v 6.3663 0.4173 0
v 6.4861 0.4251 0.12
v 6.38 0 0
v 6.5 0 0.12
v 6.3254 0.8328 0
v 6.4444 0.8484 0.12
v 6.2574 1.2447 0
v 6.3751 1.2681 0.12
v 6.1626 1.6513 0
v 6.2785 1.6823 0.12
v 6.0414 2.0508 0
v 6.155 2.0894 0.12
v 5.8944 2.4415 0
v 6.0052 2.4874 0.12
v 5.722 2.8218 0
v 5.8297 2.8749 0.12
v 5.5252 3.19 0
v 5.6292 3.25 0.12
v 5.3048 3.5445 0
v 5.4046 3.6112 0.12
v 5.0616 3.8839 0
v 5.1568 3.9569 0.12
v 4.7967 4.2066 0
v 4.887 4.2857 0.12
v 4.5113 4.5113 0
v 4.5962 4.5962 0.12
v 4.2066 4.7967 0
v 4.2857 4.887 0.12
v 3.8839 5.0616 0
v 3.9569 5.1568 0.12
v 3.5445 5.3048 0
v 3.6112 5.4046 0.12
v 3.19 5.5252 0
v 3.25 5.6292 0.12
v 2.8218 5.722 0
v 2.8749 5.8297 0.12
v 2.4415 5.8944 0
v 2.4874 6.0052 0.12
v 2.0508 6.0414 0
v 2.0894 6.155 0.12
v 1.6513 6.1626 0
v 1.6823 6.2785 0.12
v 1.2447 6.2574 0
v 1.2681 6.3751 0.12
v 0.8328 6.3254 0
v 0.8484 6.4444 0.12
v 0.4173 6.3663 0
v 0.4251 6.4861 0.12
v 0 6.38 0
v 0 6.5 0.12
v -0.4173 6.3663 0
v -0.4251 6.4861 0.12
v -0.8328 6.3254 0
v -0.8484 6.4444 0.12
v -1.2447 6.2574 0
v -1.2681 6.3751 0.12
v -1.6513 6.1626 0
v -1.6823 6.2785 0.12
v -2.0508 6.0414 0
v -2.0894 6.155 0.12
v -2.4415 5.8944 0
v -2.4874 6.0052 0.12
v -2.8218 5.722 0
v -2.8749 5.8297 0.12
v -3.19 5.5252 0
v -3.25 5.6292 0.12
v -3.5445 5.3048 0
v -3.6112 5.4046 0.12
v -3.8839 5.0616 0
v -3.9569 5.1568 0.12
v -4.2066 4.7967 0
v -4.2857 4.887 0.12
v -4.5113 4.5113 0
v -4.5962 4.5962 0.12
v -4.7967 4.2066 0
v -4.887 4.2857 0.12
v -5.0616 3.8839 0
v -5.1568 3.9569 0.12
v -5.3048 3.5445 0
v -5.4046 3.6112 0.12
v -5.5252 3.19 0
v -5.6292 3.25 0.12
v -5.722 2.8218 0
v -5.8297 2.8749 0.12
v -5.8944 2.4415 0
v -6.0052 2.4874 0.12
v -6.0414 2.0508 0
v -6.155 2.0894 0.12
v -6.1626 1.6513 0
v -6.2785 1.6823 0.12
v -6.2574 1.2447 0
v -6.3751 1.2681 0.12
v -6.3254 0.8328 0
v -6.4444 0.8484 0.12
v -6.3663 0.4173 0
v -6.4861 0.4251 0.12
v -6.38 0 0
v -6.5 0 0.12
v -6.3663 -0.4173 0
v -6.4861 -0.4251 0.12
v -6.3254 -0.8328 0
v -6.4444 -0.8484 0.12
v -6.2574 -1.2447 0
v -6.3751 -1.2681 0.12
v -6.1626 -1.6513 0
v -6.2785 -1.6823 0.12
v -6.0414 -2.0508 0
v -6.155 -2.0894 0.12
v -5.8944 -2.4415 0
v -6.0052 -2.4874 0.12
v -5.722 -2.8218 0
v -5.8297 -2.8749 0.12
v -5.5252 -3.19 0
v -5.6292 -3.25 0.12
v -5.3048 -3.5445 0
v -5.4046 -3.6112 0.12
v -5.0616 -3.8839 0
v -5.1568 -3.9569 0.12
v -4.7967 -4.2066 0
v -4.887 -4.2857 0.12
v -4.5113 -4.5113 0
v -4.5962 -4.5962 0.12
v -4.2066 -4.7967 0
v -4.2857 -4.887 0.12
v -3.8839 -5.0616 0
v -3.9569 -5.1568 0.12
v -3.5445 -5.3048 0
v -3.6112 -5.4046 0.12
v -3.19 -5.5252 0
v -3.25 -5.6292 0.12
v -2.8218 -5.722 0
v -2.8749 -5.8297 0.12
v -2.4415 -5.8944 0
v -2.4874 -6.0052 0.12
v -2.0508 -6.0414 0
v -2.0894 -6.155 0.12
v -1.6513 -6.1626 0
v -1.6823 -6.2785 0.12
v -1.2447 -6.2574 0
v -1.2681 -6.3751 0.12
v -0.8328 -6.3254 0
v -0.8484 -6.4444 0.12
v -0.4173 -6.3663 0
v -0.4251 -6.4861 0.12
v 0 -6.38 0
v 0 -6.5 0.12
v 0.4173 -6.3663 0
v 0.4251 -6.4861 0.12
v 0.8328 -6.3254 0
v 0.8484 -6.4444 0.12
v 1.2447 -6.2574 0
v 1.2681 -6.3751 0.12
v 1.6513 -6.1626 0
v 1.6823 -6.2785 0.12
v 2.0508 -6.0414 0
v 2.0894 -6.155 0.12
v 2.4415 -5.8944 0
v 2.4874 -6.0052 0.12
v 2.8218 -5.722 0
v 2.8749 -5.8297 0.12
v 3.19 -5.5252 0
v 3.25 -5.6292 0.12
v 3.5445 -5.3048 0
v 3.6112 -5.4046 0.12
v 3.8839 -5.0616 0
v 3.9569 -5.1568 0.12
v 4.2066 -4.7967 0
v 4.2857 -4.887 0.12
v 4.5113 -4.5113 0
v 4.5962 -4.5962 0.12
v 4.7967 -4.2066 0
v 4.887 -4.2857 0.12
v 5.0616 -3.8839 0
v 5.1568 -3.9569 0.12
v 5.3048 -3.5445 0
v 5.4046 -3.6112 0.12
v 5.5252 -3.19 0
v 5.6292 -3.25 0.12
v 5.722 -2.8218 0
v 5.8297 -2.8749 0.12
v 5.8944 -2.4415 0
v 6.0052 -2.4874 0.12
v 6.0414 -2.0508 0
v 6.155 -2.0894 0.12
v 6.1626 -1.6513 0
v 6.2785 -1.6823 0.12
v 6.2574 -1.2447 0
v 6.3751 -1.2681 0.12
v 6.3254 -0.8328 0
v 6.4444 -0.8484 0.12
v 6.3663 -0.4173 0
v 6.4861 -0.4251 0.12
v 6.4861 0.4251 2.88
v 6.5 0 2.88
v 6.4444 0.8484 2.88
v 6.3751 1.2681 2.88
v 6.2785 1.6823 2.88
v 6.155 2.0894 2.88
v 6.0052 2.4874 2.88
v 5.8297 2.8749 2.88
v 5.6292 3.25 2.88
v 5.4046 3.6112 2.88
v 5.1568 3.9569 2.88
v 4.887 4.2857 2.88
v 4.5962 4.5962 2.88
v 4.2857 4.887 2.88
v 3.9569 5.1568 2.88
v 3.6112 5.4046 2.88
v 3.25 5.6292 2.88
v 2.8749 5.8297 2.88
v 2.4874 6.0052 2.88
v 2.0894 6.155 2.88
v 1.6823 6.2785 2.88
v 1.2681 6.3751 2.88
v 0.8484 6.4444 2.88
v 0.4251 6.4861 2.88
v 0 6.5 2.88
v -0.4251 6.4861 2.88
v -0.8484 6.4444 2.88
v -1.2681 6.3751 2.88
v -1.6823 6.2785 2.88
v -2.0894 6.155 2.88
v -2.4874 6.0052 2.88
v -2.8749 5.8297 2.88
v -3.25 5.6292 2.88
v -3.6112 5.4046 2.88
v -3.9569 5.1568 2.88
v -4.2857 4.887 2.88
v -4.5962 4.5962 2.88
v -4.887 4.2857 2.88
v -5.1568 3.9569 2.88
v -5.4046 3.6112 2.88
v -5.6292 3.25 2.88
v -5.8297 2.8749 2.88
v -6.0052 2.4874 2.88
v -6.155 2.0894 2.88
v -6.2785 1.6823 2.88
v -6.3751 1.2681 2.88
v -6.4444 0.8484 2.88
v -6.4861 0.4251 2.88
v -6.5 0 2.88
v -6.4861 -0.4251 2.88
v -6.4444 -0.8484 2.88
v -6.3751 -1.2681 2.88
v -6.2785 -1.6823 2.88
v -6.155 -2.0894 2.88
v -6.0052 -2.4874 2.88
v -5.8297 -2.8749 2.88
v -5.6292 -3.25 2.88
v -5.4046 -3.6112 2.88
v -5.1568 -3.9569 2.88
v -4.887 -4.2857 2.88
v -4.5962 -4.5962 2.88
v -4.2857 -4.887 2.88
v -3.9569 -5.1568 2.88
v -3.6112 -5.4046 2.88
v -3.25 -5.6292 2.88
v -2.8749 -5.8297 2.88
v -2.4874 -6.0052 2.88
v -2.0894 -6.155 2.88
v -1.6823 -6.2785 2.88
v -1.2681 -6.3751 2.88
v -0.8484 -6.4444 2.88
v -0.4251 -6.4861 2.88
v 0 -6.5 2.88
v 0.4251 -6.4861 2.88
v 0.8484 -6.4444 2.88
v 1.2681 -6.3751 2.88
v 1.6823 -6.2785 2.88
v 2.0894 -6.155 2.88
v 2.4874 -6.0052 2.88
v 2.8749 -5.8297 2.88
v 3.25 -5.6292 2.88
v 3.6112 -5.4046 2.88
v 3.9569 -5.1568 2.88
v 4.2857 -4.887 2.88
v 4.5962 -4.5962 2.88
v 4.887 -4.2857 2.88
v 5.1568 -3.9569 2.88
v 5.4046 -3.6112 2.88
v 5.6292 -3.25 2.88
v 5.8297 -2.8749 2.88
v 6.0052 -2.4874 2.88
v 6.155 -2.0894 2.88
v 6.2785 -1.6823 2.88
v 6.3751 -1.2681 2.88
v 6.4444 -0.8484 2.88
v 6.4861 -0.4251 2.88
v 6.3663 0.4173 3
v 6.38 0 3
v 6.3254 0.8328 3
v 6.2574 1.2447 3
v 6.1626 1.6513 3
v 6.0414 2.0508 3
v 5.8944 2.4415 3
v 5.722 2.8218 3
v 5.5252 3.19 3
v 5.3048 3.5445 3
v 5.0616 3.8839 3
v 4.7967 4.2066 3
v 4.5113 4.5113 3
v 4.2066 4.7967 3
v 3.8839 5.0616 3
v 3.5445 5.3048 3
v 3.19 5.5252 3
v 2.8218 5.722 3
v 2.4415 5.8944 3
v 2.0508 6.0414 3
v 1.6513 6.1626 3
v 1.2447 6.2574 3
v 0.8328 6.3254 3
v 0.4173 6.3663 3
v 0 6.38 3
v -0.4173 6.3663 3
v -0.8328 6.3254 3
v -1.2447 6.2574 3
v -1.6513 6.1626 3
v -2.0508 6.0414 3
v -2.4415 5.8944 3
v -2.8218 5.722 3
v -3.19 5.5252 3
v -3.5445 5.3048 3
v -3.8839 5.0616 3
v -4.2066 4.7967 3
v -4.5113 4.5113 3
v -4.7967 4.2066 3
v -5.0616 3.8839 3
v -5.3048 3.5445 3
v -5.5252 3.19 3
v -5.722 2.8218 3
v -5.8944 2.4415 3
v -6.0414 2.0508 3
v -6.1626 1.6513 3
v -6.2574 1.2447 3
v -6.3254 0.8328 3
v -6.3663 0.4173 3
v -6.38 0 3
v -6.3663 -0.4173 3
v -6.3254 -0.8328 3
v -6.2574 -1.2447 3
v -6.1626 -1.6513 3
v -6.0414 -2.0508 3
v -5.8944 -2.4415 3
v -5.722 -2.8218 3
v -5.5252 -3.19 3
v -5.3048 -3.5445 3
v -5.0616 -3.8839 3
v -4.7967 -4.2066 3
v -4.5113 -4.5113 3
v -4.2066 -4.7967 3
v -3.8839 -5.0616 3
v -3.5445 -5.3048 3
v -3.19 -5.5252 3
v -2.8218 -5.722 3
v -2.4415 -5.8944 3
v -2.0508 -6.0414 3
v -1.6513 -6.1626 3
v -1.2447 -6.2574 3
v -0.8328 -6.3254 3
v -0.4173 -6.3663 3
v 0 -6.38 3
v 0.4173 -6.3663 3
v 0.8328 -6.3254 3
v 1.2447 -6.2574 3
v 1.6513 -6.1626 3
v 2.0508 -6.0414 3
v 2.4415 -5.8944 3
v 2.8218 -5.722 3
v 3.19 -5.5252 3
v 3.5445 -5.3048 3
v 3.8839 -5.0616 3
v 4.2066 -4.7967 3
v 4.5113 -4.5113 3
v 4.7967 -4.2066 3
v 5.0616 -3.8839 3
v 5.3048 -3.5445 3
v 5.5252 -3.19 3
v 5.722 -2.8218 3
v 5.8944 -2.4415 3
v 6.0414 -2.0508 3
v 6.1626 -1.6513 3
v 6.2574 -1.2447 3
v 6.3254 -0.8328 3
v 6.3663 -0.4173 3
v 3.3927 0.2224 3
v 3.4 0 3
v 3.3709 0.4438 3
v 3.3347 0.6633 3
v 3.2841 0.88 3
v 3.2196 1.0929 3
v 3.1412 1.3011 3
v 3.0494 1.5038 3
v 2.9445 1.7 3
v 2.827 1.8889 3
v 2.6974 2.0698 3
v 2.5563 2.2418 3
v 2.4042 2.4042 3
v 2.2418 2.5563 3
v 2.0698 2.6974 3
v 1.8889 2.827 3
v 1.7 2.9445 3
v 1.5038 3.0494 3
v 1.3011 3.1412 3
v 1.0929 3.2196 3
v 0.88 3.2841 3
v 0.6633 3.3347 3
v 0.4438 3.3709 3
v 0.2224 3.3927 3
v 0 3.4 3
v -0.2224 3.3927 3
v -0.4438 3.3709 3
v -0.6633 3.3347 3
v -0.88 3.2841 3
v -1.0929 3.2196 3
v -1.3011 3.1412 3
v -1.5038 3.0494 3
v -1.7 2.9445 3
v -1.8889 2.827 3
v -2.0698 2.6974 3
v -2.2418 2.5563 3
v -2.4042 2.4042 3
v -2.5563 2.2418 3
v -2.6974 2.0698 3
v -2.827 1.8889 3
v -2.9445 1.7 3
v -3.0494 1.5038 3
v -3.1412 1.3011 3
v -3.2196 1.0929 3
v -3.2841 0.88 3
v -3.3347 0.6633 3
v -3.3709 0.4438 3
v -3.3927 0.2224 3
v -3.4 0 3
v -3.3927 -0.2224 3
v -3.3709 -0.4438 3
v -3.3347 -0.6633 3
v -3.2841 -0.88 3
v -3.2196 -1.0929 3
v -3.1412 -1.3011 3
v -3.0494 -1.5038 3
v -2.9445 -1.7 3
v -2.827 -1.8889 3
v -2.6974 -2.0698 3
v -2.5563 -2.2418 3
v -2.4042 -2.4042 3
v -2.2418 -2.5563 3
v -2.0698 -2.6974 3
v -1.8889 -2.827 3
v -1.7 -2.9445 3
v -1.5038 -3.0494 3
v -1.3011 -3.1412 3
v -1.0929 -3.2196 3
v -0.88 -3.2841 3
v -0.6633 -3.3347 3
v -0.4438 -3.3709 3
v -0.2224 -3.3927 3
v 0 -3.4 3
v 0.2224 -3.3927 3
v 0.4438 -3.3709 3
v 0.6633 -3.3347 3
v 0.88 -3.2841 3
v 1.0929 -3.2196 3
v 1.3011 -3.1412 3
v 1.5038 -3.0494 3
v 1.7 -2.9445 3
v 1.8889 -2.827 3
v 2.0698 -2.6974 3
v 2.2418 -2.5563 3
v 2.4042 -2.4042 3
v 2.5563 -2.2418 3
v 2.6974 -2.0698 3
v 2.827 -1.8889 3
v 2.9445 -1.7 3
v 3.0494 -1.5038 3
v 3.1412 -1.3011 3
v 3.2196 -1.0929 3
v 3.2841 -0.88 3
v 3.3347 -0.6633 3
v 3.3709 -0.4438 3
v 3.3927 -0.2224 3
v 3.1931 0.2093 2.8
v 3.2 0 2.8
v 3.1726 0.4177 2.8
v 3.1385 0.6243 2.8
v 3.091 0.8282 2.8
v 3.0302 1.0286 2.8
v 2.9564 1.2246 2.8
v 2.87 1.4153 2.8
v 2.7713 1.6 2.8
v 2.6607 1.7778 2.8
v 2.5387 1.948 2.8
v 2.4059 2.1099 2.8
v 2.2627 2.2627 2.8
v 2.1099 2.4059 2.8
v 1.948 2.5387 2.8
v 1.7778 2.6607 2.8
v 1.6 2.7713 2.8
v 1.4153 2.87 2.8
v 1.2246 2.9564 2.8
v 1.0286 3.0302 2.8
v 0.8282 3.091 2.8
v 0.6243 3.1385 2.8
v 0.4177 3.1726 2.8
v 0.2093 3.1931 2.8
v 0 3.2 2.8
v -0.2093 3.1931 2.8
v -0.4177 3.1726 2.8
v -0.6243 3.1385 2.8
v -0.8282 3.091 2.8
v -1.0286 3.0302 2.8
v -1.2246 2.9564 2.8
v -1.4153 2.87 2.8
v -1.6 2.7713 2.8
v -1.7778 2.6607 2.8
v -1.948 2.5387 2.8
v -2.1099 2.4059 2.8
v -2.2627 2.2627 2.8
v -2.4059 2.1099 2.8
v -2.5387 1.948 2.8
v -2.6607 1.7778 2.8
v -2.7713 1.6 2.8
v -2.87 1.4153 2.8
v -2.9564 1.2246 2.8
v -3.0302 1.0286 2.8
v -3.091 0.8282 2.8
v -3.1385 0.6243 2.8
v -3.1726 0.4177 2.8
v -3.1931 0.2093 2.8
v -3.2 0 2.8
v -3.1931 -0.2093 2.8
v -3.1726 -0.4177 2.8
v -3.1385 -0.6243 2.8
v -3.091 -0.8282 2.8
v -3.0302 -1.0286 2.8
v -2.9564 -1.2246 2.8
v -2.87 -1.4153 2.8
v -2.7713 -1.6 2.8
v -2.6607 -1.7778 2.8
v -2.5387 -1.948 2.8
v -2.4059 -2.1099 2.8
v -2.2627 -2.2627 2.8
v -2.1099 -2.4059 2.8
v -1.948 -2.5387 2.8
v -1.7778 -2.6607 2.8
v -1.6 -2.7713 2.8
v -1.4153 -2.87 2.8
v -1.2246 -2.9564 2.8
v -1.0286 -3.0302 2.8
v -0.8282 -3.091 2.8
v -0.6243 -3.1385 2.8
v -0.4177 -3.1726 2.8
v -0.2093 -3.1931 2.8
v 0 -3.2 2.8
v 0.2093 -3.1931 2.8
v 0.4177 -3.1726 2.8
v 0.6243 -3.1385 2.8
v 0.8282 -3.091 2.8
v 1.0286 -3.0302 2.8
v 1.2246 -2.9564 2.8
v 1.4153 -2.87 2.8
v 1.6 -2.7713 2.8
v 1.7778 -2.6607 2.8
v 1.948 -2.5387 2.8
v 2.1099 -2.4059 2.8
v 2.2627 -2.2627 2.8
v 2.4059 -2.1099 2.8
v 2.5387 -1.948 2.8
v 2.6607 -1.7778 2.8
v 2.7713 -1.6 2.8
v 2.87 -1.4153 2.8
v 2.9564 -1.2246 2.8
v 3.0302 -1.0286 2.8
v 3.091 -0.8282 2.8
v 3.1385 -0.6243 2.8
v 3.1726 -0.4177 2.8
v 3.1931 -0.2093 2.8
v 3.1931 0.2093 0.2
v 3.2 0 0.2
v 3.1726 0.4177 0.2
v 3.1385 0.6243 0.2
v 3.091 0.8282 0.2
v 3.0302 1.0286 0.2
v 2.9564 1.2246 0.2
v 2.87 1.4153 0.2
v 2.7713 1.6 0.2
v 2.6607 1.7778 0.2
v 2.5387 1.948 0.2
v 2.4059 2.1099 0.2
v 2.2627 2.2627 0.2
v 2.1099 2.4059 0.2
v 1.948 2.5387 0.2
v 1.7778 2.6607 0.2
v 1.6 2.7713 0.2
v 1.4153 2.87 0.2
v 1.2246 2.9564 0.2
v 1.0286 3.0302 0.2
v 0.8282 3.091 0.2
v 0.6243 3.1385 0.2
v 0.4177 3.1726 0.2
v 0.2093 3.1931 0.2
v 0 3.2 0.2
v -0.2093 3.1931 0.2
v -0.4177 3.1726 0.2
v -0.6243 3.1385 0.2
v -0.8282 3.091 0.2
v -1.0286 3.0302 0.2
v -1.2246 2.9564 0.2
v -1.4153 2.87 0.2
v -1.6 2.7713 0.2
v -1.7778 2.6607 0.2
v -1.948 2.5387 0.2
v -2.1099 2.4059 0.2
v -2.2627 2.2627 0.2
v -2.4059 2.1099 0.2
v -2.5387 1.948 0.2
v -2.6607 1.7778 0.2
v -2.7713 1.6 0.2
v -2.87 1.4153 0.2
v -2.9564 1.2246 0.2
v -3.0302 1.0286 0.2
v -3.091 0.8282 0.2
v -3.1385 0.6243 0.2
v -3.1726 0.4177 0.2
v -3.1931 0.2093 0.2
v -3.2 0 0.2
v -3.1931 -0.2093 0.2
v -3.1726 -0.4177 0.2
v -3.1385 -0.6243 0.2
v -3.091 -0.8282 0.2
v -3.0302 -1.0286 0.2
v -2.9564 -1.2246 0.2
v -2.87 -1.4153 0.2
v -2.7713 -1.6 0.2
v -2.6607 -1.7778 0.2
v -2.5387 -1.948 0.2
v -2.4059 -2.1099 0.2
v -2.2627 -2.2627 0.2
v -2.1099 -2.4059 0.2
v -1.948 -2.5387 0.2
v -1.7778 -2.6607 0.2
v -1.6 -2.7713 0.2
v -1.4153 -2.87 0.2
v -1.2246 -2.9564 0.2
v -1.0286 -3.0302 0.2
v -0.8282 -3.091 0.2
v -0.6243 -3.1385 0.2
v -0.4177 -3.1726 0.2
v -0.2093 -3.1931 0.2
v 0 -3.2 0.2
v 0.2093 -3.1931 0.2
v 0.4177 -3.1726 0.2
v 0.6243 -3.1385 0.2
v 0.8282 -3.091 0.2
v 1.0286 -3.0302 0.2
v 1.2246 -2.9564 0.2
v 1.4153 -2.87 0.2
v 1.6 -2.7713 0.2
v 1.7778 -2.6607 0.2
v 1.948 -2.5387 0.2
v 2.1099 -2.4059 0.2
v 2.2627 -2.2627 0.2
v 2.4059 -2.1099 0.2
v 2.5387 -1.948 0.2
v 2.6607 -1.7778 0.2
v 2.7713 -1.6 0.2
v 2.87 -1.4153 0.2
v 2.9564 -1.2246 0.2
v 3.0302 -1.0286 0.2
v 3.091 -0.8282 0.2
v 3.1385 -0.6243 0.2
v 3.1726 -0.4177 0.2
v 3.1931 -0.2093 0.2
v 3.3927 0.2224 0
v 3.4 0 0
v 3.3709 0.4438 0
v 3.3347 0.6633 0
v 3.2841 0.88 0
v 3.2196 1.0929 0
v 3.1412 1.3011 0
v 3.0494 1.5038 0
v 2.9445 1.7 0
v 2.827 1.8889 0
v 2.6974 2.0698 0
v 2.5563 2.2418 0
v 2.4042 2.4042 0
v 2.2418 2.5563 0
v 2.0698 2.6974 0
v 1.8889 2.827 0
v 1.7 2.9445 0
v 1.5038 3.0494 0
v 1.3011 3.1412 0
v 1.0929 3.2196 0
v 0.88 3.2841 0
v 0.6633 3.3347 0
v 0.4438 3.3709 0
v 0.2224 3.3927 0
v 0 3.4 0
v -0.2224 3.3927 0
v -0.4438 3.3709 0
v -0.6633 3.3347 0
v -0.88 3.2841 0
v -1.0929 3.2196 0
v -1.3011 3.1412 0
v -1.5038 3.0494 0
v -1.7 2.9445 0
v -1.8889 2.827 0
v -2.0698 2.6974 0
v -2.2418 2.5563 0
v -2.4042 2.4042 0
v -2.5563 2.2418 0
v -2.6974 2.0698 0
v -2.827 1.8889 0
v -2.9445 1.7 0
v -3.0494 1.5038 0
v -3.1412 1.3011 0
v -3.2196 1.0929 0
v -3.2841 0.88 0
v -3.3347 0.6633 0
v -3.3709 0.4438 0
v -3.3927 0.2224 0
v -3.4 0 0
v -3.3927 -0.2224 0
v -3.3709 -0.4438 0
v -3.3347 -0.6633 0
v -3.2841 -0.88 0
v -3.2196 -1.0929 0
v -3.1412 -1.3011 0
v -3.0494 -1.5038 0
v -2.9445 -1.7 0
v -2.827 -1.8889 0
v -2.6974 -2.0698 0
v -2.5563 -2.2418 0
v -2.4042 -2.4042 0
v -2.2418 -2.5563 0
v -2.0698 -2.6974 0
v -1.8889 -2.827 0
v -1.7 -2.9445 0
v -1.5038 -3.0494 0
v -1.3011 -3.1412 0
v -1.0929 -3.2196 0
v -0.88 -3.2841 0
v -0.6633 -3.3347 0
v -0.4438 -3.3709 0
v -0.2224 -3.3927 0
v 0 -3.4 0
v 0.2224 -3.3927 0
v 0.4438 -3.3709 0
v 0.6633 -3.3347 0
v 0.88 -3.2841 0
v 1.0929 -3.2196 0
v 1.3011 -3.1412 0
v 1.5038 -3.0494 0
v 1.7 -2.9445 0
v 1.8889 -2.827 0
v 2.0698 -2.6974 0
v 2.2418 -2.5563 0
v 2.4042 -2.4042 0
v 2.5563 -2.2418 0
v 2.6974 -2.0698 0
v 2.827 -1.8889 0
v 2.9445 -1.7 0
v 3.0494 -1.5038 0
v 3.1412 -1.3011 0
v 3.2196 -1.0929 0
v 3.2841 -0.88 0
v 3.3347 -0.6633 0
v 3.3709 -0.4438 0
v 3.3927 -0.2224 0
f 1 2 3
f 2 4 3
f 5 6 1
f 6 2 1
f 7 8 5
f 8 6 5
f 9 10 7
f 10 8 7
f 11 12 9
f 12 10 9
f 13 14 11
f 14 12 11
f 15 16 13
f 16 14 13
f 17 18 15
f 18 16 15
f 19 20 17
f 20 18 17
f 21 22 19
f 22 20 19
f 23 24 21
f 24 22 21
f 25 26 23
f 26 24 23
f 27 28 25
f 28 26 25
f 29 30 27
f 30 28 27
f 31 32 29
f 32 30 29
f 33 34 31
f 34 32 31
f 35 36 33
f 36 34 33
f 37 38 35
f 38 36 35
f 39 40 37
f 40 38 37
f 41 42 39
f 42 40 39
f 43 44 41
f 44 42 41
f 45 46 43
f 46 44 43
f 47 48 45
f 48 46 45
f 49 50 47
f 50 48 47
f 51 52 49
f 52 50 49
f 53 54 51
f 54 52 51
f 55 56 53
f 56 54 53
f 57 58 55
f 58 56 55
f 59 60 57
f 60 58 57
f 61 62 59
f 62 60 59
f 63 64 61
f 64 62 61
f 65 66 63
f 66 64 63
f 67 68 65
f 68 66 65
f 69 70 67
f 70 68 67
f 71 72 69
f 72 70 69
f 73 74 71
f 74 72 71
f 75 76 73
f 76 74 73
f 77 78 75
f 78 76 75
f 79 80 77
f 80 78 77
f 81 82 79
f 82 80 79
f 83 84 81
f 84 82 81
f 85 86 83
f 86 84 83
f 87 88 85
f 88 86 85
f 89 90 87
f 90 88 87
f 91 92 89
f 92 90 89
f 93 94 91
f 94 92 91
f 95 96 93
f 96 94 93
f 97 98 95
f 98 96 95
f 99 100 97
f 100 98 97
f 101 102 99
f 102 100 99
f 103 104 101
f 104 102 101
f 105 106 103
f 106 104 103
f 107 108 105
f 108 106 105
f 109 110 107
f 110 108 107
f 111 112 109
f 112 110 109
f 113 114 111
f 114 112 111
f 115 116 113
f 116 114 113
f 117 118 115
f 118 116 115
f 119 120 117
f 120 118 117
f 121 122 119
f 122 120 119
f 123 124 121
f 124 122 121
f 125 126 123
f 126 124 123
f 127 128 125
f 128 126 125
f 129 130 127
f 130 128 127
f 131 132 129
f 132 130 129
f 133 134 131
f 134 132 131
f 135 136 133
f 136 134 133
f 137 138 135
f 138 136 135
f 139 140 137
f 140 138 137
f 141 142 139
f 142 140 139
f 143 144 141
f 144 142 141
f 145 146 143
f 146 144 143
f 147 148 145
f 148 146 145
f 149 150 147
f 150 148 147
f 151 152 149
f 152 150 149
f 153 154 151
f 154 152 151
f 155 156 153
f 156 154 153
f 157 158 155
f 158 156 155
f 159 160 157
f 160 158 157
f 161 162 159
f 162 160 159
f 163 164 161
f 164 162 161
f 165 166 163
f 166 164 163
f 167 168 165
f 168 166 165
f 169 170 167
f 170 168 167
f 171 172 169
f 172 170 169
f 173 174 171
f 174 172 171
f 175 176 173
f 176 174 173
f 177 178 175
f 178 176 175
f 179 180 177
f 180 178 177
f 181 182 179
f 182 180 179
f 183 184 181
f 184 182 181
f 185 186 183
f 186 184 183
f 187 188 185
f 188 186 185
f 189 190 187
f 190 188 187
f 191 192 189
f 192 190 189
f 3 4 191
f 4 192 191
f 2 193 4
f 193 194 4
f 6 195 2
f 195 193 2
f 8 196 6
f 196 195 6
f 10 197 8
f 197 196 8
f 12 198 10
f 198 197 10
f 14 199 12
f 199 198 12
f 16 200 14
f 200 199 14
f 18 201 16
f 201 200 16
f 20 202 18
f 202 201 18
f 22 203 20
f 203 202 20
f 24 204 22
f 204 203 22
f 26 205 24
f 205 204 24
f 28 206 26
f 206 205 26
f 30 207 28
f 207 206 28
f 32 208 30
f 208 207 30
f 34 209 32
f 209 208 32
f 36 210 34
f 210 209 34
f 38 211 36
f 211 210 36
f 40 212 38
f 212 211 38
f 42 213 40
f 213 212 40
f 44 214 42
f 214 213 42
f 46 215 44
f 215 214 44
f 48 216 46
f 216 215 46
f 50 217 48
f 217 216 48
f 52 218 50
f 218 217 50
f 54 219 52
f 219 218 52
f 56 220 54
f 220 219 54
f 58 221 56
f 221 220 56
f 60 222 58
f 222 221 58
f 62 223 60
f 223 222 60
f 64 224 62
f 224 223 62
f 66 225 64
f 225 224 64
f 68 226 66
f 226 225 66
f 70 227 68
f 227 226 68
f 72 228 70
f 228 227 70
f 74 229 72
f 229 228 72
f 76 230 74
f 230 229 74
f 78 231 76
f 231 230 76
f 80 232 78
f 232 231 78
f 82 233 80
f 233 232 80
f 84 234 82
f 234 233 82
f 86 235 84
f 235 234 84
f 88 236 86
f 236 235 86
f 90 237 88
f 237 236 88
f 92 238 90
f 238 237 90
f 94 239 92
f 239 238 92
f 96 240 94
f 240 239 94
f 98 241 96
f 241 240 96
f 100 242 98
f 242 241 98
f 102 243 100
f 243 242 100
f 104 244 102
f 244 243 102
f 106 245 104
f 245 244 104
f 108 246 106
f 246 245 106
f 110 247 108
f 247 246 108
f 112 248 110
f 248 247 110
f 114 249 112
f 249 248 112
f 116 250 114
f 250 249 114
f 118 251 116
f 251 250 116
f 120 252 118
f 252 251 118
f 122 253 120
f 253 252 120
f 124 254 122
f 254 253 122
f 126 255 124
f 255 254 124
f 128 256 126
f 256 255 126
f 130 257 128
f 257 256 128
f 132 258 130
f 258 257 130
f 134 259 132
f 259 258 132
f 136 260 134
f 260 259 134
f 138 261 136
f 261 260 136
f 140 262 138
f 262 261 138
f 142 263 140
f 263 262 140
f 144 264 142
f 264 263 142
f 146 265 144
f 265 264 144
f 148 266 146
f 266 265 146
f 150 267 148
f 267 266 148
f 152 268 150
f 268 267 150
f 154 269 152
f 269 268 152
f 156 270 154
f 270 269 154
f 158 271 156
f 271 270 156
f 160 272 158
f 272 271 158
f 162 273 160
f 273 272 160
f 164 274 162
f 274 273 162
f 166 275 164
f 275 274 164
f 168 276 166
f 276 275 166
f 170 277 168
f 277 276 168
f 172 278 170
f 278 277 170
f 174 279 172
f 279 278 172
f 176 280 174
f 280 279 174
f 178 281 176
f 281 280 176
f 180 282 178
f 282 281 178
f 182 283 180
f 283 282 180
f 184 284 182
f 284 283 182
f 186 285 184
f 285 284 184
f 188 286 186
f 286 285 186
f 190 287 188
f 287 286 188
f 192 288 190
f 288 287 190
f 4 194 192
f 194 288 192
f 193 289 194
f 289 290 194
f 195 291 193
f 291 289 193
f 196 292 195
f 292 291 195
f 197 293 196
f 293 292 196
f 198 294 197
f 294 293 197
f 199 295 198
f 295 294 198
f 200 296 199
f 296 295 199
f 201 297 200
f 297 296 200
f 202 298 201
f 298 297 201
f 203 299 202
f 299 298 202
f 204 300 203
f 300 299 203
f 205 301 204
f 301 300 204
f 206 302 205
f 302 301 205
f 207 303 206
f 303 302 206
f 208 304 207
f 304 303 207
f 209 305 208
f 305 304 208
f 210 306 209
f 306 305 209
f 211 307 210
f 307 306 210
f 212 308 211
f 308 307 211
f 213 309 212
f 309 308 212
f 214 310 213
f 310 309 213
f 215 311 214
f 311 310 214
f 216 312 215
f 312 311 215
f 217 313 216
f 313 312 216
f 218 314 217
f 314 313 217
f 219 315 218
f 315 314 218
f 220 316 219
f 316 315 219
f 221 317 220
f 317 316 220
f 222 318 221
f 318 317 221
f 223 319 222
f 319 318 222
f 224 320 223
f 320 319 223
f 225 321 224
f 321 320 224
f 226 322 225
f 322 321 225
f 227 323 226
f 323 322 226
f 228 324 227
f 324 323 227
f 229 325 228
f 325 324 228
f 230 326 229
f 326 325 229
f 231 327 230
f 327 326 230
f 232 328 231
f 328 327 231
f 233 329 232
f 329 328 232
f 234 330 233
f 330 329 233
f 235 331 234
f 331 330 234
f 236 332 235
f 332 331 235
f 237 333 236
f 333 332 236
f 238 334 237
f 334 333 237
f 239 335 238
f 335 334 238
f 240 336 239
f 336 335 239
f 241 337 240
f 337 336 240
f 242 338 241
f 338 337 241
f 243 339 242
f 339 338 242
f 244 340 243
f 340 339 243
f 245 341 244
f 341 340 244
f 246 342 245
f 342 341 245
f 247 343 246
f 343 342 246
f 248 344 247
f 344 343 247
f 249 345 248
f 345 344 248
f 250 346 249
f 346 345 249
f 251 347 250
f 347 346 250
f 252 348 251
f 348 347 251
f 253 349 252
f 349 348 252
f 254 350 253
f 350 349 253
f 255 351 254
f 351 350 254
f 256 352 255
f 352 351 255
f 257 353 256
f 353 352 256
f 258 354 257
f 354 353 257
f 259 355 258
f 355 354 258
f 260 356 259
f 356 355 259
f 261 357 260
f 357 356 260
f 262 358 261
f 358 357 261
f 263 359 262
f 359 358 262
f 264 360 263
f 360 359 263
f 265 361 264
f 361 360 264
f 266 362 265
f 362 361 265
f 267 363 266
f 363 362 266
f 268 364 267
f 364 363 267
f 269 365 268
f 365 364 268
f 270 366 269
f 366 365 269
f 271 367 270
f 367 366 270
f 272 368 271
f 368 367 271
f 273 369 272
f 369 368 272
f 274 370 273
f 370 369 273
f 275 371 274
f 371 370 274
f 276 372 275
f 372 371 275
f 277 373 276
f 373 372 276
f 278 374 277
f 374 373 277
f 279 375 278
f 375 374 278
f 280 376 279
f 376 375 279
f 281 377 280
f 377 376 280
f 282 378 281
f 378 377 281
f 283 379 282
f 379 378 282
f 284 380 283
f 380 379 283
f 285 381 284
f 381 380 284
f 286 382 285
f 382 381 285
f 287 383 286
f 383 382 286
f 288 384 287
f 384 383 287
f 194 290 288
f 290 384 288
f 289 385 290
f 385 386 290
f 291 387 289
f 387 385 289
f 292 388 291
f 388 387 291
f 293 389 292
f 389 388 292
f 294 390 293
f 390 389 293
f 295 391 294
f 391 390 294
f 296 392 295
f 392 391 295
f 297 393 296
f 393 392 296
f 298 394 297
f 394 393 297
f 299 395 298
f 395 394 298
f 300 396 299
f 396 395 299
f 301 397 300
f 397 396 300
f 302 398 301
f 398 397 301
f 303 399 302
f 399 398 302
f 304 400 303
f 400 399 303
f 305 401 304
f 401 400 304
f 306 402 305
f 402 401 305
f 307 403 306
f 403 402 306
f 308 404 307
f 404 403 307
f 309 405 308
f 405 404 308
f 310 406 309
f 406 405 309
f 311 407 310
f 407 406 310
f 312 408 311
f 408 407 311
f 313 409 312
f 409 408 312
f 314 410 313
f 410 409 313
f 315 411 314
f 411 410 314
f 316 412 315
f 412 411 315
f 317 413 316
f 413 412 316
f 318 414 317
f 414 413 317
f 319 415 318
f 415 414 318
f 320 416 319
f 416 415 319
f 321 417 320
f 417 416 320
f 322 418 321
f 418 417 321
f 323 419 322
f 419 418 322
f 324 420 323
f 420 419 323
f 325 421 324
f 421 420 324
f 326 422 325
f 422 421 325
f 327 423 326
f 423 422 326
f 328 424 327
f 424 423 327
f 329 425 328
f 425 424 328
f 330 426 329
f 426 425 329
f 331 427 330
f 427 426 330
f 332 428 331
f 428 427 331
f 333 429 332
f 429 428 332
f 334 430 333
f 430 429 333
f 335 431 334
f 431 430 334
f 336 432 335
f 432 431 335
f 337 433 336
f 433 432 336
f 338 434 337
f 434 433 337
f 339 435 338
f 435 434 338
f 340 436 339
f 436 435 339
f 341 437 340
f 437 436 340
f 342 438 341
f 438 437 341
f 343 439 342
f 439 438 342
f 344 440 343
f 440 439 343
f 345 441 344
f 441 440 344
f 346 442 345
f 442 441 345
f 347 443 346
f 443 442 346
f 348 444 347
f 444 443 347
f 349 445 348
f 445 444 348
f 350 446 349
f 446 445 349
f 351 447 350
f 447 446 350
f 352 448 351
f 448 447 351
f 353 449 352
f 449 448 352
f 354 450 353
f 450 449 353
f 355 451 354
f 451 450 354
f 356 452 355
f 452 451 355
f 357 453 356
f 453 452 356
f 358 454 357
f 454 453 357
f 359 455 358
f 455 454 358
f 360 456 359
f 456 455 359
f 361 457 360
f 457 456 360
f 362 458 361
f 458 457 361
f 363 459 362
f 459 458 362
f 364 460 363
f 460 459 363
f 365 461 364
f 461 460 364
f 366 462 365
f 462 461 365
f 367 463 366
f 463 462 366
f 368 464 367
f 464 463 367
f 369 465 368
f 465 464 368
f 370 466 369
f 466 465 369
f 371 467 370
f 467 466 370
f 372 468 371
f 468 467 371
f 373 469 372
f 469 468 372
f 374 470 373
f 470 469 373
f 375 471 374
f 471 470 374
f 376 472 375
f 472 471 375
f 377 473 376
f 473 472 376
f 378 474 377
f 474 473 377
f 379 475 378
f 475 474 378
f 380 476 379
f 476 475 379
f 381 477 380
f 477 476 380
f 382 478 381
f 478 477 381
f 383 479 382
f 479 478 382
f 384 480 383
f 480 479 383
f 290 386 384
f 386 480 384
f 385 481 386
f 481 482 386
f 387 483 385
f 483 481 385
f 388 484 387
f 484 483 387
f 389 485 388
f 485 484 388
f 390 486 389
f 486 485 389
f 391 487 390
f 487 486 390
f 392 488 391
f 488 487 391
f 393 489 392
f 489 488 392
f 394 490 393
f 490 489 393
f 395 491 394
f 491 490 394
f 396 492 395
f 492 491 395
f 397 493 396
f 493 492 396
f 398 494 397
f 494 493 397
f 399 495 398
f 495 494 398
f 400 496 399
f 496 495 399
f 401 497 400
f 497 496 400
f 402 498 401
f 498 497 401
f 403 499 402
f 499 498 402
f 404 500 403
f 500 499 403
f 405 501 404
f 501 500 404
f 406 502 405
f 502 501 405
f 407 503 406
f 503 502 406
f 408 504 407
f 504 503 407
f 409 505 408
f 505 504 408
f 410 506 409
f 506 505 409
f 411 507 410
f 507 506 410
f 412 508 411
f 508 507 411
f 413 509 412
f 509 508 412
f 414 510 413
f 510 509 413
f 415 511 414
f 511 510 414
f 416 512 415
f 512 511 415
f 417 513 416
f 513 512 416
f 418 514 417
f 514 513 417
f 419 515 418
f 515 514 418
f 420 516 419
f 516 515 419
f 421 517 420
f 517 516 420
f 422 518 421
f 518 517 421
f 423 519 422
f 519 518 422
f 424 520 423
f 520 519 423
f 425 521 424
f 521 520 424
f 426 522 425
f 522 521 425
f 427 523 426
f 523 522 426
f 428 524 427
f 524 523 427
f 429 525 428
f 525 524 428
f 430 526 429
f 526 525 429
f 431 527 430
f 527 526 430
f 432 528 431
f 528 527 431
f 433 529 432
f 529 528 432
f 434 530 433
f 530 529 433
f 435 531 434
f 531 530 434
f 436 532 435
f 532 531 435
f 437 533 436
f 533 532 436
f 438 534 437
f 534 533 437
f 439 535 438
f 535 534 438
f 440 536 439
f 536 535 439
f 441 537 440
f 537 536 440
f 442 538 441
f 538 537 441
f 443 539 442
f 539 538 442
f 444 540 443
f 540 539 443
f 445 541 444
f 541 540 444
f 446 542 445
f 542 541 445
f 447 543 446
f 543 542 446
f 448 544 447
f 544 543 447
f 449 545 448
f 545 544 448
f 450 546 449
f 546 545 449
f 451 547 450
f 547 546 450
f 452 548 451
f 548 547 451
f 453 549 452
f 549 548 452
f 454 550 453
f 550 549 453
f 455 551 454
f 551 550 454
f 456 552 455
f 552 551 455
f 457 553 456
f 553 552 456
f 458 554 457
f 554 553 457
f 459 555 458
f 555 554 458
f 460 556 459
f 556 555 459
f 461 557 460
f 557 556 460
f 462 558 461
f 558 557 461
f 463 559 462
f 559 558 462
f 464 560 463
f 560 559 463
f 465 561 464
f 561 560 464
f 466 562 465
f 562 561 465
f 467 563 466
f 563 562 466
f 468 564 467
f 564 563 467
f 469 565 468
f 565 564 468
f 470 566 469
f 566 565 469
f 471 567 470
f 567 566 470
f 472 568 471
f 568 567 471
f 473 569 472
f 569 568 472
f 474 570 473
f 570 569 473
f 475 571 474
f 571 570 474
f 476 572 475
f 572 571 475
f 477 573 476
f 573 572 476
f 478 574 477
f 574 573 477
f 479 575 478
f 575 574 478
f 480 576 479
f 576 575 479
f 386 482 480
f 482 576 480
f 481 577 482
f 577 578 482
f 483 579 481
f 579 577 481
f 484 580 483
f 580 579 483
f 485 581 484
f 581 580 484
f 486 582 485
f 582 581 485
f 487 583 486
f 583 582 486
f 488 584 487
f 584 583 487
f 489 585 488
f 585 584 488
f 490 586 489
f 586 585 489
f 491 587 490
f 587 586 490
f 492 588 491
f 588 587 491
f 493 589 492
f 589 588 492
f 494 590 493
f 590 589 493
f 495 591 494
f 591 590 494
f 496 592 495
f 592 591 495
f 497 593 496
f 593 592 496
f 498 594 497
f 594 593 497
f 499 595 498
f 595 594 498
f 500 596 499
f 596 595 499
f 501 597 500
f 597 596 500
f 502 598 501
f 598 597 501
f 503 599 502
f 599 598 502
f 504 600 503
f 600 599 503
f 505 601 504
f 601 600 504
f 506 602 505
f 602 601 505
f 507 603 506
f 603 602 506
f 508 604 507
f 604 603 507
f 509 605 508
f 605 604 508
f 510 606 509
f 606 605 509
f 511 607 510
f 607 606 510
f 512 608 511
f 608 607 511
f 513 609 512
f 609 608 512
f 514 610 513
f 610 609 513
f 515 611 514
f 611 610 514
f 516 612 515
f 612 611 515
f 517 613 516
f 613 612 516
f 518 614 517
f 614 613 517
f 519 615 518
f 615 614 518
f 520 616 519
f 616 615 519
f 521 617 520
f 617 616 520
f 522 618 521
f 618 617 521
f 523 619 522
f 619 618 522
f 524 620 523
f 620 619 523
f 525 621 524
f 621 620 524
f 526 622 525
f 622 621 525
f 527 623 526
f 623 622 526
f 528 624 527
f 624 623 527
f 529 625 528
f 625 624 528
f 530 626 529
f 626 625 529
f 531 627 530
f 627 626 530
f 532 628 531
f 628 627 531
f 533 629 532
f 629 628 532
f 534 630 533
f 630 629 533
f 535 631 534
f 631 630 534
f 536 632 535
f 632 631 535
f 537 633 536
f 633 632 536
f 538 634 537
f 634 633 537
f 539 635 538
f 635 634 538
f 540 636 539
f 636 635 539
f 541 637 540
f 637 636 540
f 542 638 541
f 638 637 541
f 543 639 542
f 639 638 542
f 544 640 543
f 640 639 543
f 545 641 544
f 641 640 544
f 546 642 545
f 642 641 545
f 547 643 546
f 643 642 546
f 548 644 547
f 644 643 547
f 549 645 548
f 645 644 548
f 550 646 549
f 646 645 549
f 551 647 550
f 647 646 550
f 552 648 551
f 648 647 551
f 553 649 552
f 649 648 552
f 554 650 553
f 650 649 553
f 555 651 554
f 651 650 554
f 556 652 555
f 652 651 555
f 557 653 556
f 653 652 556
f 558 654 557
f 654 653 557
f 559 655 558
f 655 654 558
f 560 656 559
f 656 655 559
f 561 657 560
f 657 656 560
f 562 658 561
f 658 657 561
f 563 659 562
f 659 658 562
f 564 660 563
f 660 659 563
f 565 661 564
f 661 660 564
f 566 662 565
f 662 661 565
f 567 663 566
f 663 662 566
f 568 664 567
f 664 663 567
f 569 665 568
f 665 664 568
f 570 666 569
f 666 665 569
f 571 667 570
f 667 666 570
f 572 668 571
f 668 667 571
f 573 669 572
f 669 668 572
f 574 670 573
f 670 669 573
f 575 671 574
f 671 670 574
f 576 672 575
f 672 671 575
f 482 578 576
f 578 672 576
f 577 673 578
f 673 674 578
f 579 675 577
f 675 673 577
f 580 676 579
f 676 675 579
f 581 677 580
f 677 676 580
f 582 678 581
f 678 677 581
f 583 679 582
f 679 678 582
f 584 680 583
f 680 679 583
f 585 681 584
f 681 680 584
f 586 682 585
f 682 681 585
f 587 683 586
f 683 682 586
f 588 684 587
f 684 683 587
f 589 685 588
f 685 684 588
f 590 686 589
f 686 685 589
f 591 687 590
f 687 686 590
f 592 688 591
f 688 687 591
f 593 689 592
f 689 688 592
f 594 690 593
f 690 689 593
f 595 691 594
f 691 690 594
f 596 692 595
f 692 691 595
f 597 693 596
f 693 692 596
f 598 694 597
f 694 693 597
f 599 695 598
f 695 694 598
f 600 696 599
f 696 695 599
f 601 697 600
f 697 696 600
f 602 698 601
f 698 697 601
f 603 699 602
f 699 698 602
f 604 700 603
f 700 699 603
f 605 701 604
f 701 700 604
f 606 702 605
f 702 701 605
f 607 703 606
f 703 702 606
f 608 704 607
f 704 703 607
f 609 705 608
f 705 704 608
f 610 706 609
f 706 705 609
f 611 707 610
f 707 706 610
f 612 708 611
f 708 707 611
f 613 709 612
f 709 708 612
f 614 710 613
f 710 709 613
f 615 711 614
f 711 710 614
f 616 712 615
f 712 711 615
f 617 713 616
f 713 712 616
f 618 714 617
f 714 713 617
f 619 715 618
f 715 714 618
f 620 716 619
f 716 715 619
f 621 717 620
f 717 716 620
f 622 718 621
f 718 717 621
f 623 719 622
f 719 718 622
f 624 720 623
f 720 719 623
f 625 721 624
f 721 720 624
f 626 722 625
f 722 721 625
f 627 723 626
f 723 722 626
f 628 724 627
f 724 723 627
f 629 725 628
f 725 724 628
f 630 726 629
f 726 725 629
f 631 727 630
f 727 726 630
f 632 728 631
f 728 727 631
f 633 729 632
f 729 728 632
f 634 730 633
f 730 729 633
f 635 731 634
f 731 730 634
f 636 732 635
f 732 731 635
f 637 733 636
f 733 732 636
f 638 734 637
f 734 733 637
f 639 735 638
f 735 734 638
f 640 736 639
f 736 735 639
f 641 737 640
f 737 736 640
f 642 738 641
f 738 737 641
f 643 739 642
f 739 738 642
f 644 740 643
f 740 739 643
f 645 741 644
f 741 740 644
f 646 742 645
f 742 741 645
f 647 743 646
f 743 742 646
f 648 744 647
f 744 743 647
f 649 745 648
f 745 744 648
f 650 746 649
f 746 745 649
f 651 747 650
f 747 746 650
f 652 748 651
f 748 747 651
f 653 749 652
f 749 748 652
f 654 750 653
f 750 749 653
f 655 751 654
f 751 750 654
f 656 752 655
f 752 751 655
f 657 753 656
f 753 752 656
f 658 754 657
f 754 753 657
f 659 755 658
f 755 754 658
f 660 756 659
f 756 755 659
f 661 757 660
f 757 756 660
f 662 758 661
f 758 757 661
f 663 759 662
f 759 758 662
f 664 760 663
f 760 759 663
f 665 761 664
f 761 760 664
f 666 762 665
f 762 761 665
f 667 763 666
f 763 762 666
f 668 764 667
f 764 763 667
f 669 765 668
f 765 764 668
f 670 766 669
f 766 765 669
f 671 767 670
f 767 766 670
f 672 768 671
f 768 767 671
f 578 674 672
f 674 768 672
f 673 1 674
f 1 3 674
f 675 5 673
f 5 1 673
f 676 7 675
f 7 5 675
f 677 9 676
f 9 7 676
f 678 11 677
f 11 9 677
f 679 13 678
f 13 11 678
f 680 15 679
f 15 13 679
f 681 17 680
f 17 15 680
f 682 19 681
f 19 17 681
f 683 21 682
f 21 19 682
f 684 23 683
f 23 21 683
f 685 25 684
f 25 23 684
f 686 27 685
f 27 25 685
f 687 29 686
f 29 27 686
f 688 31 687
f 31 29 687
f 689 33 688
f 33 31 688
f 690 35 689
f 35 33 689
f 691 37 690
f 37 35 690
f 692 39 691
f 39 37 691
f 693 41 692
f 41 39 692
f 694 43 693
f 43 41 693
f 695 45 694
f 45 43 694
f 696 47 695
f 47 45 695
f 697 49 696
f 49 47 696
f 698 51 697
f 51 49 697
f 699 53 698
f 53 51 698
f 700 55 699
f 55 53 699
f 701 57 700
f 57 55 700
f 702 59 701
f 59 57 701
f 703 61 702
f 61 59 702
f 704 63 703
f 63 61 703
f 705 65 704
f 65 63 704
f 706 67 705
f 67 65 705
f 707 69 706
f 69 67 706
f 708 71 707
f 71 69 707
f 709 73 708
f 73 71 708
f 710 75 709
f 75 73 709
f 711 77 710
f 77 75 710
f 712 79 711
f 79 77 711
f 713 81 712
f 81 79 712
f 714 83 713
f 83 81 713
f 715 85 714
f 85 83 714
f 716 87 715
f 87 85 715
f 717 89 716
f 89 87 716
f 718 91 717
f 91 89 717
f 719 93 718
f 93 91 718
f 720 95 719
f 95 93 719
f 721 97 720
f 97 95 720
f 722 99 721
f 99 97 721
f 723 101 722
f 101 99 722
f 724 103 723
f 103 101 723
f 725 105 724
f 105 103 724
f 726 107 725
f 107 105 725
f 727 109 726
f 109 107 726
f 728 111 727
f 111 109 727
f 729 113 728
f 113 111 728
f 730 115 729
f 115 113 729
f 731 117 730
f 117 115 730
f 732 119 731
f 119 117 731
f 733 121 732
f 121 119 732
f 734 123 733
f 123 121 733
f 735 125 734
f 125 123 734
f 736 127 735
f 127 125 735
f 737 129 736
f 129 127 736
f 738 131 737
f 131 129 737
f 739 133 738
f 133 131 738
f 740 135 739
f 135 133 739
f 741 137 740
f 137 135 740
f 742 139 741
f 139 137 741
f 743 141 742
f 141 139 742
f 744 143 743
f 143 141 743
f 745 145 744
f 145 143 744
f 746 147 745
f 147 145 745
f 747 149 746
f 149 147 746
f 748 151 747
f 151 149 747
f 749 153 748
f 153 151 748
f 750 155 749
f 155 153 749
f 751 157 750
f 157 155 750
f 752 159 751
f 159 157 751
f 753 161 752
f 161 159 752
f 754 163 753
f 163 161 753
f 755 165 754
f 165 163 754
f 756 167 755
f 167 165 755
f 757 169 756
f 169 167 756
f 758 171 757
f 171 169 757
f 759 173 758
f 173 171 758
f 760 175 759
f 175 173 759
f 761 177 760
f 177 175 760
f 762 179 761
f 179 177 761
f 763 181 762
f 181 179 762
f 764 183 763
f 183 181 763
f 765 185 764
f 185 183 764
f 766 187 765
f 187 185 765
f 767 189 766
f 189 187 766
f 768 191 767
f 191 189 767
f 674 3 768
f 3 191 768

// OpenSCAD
// OOMP generic catalogue model; units: mm.
// Stud length is additional to body depth. Tapping depths are model assumptions.
variant = "full"; // [full, display]
family = "spacer";
connection_type = "plain";
depth_mm = 3;
stud_length_mm = 0;
tapped_depth_mm = 0;
bore_mm = 6.4;
outer_diameter_mm = 13;
across_flats_mm = 6;
thread_nominal_diameter_mm = 3;
thread_pitch_mm = 0.5;
edge_chamfer_mm = 0.12;
mouth_chamfer_mm = 0.2;
angular_segments = 96;
samples_per_pitch = 16;

// Boundary travels up the outside, then down any tapped/plain bore.
// Equal-height rings at shoulders form the annular shoulder faces.
n = angular_segments;
threaded = family == "standoff";
has_stud = connection_type == "stud_to_tapped" || connection_type == "stud_to_stud";
two_studs = connection_type == "stud_to_stud";
through = !threaded || connection_type == "tapped_to_tapped";
pitch = thread_pitch_mm;
diameter = threaded ? thread_nominal_diameter_mm : bore_mm;
minor = diameter - 5*sqrt(3)*pitch/8;
transition = mouth_chamfer_mm + (threaded ? 5*sqrt(3)*pitch/16 : 0);
tip_chamfer = mouth_chamfer_mm + 17*sqrt(3)*pitch/48;
function sorted(v) = len(v)<=1 ? v : let(p=v[0])
    concat(sorted([for(x=v) if(x<p-1e-8) x]), [p], sorted([for(x=v) if(x>p+1e-8) x]));
function reverse(v) = [for(i=[len(v)-1:-1:0]) v[i]];
function theta(i) = i*360/n;
function fract(x) = x-floor(x);
function phase_distance(i,z) = abs(fract(z/pitch-theta(i)/360+0.5)-0.5);
function thread_r(i,z) = minor/2 + min(5*sqrt(3)*pitch/16,
    max(0,(phase_distance(i,z)-0.125)*pitch*sqrt(3)));
function stud_r(i,z,tip) = min(diameter/2 - (variant=="full" ?
    min(17*sqrt(3)*pitch/48,max(0,(phase_distance(i,z)-0.0625)*pitch*sqrt(3))) : 0),
    diameter/2-tip_chamfer+abs(z-tip));
function body_r(i,z) = (threaded ? across_flats_mm/2/cos(theta(i)%60-30) : outer_diameter_mm/2)
    - max(0,edge_chamfer_mm-min(z,depth_mm-z));
function bore_r(i,z) = max(threaded ? (variant=="full" ? thread_r(i,z) : minor/2) : diameter/2,
    diameter/2+mouth_chamfer_mm-(through ? min(z,depth_mm-z) : depth_mm-z));
function stud_z(a,b,tip) = let(count=variant=="full" ? ceil(stud_length_mm/pitch*samples_per_pitch) : 1)
    sorted(concat([for(i=[0:count]) a+(b-a)*i/count], [tip==a ? tip+tip_chamfer : tip-tip_chamfer]));
body_z = sorted([0,edge_chamfer_mm,depth_mm-edge_chamfer_mm,depth_mm]);
low = through ? 0 : depth_mm-tapped_depth_mm;
count = threaded && variant=="full" ? ceil((depth_mm-low)/pitch*samples_per_pitch) : 1;
bore_z = two_studs ? [] : reverse(sorted(concat(
    [for(i=[0:count]) low+(depth_mm-low)*i/count],
    [depth_mm-mouth_chamfer_mm,depth_mm-transition],
    through ? [mouth_chamfer_mm,transition] : [])));
// Ring descriptors: [height, kind, tip]. Kind: 0 body, 1 stud, 2 bore.
rings = concat(
    has_stud ? [for(z=stud_z(-stud_length_mm,0,-stud_length_mm)) [z,1,-stud_length_mm]] : [],
    [for(z=body_z) [z,0,0]],
    two_studs ? [for(z=stud_z(depth_mm,depth_mm+stud_length_mm,depth_mm+stud_length_mm)) [z,1,depth_mm+stud_length_mm]] : [],
    [for(z=bore_z) [z,2,0]]);
function radius(i,ring) = ring[1]==0 ? body_r(i,ring[0]) :
    ring[1]==1 ? stud_r(i,ring[0],ring[2]) : bore_r(i,ring[0]);
points = concat([for(ring=rings) for(i=[0:n-1])
    [radius(i,ring)*cos(theta(i)),radius(i,ring)*sin(theta(i)),ring[0]]],
    through ? [] : [[0,0,rings[0][0]],[0,0,rings[len(rings)-1][0]]]);
center = len(rings)*n;
last = (len(rings)-1)*n;
// OpenSCAD winding is opposite to STL winding.
faces = concat(
    [for(j=[0:len(rings)-(through ? 1 : 2)]) for(i=[0:n-1]) each
        let(a=j*n+i,b=j*n+(i+1)%n,c=((j+1)%len(rings))*n+(i+1)%n,d=((j+1)%len(rings))*n+i)
        [[a,c,b],[a,d,c]]],
    through ? [] : [for(i=[0:n-1]) each let(k=(i+1)%n)
        [[center,i,k],[center+1,last+k,last+i]]]);
assert(family=="spacer" || family=="standoff");
assert(!threaded || connection_type=="tapped_to_tapped" || has_stud);
assert(depth_mm>0 && diameter>0 && pitch>0);
assert(variant=="full" || variant=="display");
assert(n>=24 && n%12==0 && samples_per_pitch>=8);
assert(mouth_chamfer_mm>0 && mouth_chamfer_mm<depth_mm/2);
assert(edge_chamfer_mm>=0 && edge_chamfer_mm<depth_mm/2);
assert(diameter+4*max(mouth_chamfer_mm,edge_chamfer_mm) < (threaded ? across_flats_mm : outer_diameter_mm));
assert(!has_stud || stud_length_mm>2*mouth_chamfer_mm);
assert(!through || !threaded || 2*transition<depth_mm);
assert(connection_type!="stud_to_tapped" || (tapped_depth_mm>transition && tapped_depth_mm<depth_mm));
color([0.86,0.85,0.81]) polyhedron(points=points,faces=faces,convexity=20);
